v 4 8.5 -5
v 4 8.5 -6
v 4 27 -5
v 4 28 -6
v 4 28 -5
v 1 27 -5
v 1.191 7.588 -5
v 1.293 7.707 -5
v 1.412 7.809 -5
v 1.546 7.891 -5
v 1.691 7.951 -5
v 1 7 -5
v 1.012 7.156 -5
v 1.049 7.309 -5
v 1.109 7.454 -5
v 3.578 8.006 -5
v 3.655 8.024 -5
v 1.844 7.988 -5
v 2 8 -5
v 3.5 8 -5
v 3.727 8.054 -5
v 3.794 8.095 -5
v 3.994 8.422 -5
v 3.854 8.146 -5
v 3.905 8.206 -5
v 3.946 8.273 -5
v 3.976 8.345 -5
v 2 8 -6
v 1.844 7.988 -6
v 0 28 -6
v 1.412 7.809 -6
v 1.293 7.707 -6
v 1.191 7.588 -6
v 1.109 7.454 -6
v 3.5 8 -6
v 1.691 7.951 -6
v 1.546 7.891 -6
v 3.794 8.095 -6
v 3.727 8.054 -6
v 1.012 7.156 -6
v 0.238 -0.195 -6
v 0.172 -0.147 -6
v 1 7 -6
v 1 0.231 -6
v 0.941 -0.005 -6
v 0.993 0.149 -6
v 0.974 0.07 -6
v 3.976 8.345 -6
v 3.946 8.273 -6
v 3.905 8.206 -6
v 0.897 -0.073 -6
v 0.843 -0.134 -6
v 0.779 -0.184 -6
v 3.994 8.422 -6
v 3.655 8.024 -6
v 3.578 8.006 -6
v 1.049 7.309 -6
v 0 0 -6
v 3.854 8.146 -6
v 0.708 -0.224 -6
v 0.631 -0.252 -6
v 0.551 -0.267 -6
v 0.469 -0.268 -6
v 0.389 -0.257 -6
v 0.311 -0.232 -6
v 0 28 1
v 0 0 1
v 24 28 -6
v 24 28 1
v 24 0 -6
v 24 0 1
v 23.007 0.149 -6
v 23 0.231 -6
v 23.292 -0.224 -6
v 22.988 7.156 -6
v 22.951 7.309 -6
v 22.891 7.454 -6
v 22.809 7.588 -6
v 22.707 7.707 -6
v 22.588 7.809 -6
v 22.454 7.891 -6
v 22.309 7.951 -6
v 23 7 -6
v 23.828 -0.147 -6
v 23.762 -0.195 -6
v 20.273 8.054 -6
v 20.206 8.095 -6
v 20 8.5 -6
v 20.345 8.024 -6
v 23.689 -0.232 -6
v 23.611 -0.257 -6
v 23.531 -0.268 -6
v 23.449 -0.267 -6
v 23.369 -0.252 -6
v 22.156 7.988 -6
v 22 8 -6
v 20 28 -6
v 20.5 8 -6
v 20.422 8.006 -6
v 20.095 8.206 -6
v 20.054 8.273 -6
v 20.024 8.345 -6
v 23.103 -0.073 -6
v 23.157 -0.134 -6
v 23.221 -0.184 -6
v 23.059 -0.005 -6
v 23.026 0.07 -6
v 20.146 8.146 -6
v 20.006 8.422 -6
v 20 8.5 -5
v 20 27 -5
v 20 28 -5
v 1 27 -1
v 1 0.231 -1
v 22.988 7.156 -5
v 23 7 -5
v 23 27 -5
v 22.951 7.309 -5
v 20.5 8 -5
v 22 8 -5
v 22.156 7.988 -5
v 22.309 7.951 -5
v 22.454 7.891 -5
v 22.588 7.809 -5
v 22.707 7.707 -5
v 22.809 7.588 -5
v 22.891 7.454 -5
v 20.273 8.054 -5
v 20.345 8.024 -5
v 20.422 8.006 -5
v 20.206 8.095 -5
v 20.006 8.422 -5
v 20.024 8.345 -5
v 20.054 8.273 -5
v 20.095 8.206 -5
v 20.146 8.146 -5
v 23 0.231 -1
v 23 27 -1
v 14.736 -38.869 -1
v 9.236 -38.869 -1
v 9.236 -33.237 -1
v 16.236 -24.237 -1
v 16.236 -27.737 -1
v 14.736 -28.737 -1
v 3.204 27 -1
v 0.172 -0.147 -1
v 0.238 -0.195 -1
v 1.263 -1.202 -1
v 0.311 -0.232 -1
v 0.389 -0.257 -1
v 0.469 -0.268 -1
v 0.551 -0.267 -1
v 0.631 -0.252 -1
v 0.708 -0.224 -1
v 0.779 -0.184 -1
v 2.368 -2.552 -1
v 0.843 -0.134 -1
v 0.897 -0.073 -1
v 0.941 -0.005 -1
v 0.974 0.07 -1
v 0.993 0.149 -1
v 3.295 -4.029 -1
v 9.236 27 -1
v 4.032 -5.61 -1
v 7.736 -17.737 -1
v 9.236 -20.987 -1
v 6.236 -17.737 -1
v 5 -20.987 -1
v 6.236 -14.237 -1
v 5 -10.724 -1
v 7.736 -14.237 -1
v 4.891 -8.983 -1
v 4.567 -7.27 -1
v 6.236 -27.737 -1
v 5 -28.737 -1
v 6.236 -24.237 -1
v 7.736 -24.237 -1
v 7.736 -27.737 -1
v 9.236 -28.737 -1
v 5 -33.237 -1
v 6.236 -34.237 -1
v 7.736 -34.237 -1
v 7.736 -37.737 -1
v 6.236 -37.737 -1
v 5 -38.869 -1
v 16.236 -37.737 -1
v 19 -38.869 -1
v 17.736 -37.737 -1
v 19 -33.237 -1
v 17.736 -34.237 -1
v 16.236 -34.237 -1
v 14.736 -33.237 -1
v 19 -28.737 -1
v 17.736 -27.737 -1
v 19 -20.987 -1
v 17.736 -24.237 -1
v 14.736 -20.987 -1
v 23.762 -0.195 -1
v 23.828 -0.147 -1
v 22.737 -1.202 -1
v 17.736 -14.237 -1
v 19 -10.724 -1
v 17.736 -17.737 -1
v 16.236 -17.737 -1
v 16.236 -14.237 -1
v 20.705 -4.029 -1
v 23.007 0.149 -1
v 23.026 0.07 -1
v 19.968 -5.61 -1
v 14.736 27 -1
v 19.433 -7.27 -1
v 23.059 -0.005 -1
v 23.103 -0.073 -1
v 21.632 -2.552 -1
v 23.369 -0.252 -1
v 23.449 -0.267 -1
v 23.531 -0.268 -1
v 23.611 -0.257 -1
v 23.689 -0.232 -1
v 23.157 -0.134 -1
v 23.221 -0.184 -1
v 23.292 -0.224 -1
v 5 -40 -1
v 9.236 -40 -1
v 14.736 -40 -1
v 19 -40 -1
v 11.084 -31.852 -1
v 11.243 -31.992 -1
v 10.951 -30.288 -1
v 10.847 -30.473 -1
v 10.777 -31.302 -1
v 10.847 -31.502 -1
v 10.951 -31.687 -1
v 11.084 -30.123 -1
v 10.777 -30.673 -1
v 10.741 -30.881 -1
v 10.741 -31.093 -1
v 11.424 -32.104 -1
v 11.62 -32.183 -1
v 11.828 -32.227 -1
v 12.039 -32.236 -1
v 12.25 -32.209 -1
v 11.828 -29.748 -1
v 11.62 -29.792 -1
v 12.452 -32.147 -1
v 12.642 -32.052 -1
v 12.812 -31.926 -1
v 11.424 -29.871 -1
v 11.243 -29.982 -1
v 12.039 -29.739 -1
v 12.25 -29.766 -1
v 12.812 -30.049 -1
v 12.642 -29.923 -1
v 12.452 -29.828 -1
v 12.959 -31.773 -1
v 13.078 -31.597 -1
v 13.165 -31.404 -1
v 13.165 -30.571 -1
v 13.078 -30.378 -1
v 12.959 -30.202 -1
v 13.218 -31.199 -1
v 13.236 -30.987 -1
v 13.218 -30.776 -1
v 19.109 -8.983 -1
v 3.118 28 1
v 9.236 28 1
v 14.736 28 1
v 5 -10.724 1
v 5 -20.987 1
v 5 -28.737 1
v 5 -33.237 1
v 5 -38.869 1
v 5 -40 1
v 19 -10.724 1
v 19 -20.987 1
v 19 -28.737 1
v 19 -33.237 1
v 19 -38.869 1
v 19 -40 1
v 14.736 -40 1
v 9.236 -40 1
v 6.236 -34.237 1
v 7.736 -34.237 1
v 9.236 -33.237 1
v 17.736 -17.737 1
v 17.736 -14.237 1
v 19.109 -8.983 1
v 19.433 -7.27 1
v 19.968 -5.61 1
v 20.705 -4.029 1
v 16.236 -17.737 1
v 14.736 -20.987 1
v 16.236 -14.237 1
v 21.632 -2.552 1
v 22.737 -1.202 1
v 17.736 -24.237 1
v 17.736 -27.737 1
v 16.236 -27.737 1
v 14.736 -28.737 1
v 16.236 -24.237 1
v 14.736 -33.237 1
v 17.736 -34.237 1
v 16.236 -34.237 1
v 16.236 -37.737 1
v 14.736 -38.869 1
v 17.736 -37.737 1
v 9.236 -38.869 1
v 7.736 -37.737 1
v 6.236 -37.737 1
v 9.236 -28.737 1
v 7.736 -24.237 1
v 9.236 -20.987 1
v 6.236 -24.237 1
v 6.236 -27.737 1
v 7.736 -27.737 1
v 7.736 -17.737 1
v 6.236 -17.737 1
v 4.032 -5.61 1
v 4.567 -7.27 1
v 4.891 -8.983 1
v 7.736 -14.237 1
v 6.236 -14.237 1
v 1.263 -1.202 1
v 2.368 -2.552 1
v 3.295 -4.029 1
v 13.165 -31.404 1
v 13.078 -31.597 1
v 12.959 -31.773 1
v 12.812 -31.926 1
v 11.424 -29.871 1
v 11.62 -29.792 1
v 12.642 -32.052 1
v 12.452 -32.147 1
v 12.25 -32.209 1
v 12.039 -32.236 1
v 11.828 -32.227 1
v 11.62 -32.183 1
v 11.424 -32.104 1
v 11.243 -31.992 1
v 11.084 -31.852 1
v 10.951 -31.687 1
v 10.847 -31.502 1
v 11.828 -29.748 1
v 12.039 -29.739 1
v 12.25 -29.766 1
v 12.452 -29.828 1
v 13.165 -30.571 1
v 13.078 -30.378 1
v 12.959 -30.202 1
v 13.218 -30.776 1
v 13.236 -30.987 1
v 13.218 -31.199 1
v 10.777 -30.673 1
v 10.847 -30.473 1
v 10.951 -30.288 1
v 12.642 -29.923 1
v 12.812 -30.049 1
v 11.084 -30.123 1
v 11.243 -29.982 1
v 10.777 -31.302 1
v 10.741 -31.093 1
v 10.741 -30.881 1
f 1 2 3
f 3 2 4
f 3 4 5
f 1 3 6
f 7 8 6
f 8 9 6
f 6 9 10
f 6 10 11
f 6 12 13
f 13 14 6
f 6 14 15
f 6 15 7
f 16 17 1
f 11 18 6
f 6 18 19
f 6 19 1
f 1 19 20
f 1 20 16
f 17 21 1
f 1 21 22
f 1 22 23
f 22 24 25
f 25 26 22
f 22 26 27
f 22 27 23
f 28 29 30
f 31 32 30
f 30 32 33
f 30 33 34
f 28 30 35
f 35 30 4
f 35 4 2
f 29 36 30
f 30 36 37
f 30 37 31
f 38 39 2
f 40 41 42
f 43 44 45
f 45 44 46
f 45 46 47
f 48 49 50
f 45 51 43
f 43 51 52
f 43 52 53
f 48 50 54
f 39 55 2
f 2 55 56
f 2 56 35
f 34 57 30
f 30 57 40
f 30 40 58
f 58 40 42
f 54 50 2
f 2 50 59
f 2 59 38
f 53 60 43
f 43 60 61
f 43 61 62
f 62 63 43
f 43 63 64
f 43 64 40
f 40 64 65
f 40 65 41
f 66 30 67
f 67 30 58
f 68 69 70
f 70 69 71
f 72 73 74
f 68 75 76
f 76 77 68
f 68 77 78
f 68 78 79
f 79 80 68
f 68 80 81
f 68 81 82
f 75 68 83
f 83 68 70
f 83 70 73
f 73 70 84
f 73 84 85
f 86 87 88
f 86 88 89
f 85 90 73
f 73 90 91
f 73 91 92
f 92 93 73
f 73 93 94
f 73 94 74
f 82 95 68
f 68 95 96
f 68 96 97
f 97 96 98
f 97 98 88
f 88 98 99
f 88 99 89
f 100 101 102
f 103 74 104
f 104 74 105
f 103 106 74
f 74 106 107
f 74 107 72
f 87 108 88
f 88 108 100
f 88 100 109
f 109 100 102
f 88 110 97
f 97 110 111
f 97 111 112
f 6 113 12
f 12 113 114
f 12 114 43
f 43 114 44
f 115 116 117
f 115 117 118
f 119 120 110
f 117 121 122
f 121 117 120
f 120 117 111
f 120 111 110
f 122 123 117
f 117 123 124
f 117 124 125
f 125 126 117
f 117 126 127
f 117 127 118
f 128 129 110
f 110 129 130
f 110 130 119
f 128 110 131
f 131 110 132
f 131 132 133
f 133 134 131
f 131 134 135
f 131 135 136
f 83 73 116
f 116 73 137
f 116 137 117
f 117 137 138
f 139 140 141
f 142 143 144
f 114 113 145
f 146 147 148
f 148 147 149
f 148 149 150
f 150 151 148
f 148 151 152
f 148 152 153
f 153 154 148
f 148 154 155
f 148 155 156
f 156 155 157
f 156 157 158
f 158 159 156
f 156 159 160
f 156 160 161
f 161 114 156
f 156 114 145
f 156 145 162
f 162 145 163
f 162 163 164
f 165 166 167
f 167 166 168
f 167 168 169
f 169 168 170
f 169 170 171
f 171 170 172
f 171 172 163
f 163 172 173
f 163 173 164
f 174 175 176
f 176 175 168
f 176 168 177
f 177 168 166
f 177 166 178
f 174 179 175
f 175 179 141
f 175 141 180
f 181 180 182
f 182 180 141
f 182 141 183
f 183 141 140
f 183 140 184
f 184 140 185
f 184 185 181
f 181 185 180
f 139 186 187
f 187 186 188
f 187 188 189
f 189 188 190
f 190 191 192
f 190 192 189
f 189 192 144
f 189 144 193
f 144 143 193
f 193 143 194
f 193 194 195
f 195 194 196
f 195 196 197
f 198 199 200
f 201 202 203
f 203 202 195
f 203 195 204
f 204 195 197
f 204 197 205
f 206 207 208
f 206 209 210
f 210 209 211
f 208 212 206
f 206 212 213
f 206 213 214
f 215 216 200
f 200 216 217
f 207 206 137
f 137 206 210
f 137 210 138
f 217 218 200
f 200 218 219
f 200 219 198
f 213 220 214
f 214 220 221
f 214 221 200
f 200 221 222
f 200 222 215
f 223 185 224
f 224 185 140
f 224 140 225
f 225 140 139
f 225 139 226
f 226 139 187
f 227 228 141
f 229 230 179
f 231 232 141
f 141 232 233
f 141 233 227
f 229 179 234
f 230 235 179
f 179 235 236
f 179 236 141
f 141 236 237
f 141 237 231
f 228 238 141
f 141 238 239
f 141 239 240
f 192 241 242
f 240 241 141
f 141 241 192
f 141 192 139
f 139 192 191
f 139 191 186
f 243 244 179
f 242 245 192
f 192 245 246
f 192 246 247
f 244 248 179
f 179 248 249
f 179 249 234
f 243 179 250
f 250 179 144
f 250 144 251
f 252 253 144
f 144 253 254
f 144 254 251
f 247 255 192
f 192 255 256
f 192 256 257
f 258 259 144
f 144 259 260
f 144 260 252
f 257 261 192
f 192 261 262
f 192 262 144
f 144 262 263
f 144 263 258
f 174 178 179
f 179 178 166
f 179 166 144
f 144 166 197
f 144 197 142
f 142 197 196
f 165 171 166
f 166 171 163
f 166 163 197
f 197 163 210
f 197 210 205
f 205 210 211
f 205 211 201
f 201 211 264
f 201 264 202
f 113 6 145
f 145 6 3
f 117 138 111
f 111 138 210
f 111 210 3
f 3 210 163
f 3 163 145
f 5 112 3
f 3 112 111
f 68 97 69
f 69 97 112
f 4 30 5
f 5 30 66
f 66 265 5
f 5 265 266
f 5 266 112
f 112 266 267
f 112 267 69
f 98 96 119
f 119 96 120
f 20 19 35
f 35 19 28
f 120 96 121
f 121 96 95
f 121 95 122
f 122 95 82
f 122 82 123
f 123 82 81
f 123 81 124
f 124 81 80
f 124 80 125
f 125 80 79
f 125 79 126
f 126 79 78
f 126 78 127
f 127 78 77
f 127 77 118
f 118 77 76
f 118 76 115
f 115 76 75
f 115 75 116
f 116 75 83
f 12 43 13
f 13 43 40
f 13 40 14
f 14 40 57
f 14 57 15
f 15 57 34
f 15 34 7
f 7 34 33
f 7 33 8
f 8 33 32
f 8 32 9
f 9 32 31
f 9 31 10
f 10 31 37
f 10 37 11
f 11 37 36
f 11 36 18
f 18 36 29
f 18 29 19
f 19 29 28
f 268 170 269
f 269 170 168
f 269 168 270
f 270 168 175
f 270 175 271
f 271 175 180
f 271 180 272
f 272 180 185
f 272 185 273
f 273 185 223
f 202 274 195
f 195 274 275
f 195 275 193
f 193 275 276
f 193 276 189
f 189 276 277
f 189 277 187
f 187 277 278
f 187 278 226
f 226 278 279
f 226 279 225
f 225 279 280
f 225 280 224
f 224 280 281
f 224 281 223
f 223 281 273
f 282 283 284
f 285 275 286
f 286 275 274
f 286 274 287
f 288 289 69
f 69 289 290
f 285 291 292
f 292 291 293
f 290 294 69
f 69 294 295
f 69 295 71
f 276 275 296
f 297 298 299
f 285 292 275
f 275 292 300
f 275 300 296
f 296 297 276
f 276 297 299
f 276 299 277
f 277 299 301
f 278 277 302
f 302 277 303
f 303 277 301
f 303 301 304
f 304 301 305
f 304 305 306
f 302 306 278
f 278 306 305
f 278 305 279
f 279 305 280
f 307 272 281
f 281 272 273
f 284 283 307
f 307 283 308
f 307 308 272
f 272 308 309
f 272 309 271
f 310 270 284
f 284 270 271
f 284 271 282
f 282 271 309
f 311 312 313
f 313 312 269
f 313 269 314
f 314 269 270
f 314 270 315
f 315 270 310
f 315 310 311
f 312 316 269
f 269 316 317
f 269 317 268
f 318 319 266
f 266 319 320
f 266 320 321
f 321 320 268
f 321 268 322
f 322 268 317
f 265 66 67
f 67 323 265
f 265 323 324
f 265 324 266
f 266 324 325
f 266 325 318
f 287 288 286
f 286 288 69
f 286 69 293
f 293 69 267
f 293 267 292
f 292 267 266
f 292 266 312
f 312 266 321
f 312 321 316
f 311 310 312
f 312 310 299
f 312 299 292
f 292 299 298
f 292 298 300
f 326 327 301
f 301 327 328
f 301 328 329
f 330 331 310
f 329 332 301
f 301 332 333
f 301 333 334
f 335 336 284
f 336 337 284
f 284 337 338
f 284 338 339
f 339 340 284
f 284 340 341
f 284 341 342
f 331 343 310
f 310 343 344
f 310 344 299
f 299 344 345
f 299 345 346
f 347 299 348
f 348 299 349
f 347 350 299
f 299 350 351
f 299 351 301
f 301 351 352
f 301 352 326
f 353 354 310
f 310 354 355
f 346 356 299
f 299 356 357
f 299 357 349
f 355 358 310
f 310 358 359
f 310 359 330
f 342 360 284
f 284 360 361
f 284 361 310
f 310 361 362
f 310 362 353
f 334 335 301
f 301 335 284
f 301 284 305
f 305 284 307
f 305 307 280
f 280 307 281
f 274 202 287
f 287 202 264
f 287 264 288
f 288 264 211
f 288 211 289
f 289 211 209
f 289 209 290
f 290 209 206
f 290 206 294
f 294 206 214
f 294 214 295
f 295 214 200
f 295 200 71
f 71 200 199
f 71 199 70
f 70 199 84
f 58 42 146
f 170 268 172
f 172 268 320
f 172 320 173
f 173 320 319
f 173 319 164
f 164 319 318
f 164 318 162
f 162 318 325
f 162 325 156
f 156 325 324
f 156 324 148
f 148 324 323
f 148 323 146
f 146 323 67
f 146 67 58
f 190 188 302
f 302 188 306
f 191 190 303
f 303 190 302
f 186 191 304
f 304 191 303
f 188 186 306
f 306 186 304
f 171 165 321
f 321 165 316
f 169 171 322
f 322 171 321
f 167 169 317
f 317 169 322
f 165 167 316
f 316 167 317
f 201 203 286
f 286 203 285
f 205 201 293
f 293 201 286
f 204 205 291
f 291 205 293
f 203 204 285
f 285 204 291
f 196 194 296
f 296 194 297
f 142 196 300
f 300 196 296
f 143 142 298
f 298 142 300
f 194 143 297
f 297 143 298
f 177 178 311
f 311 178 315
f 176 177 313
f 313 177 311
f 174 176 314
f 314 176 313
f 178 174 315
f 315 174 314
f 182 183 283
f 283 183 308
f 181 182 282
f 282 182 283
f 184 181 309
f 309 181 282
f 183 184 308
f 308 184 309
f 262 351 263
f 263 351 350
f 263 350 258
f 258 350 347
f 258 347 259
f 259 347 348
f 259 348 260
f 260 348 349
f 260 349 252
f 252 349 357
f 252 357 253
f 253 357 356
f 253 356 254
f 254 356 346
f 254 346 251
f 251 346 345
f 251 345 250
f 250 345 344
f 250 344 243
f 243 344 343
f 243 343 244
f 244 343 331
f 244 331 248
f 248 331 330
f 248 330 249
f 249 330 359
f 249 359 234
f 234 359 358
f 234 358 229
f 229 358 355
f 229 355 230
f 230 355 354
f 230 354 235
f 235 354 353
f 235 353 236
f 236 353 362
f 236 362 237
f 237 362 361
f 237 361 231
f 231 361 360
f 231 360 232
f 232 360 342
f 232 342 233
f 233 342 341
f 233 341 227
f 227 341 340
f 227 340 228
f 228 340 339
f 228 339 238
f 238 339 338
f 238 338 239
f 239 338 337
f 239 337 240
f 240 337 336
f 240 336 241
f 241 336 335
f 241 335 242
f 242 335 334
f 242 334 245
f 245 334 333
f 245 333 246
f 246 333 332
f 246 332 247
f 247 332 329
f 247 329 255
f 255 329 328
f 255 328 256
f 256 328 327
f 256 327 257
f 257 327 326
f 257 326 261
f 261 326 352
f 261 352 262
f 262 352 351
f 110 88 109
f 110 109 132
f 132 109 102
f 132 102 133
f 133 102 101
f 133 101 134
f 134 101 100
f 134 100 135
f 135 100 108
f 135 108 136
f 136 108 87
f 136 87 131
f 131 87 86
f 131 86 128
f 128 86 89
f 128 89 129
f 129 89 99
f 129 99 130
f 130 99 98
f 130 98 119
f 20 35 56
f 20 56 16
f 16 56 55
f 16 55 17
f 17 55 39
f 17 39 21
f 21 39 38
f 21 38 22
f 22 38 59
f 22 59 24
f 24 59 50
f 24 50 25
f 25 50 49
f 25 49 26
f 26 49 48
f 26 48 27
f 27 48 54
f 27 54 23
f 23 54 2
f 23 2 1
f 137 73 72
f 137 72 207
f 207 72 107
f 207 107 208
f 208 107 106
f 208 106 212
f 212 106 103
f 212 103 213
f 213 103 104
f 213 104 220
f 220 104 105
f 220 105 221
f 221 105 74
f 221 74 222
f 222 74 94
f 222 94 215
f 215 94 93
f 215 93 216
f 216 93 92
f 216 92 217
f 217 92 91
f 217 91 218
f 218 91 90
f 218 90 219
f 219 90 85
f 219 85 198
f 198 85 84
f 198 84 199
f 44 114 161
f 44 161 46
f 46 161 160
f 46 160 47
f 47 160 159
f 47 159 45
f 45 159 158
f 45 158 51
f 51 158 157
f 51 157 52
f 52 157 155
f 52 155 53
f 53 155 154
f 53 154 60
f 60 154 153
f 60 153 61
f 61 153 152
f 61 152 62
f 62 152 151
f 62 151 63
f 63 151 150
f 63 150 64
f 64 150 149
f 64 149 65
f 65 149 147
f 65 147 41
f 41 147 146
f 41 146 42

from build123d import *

# Parameters (mm, degrees)
SKETCH1_W                   = 24
SKETCH1_H                   = 6
BOSS_EXTRUDE1_DEPTH         = 27
CUT_EXTRUDE1_DEPTH          = 27
BOSS_EXTRUDE2_DEPTH         = 1
SKETCH4_W                   = 3
SKETCH4_H                   = 1
CUT_EXTRUDE2_DEPTH          = 8
FILLET1_R                   = 1
SKETCH5_W                   = 14
SKETCH5_H                   = 40
BOSS_EXTRUDE3_DEPTH         = 1
BOSS_EXTRUDE4_DEPTH         = 1
FILLET2_R                   = 14
SKETCH6_W                   = 1.5
SKETCH6_H                   = 3.5
CUT_EXTRUDE3_DEPTH          = 3
TAP_DRILL_FOR_M3X0_5_TAP1_D = 2.5
FILLET3_R                   = 0.5


with BuildPart() as part:
    # Sketch1 → Boss-Extrude1 (new body)
    with BuildSketch(Plane(origin=(0, 0, 0), x_dir=(1, 0, 0), z_dir=(0, 1, 0))):
        with Locations((12, 3)):
            Rectangle(SKETCH1_W, SKETCH1_H)
    extrude(amount=BOSS_EXTRUDE1_DEPTH)

    # Sketch2 → Cut-Extrude1 (cut)
    with BuildSketch(Plane(origin=(0, 27, 0), x_dir=(1, 0, 0), z_dir=(0, 1, 0))):
        Polygon((1, 1), (23, 1), (23, 5), (20, 5), (20, 7.622720443), (4, 7.622720443), (4, 5), (1, 5), align=None)
    extrude(amount=-CUT_EXTRUDE1_DEPTH, mode=Mode.SUBTRACT)

    # Sketch3 → Boss-Extrude2 (add)
    with BuildSketch(Plane(origin=(0, 27, 0), x_dir=(1, 0, 0), z_dir=(0, 1, 0))):
        Polygon((24, 0), (24, 5), (24, 6), (20, 6), (20, 5), (4, 5), (4, 6), (0, 6), (0, 5), (0, 0), align=None)
    extrude(amount=BOSS_EXTRUDE2_DEPTH)

    # Sketch4 → Cut-Extrude2 (cut)
    with BuildSketch(Plane.XZ):
        with Locations((2.5, -5.5)):
            Rectangle(SKETCH4_W, SKETCH4_H)
        with Locations((21.5, -5.5)):
            Rectangle(SKETCH4_W, SKETCH4_H)
    extrude(amount=-CUT_EXTRUDE2_DEPTH, mode=Mode.SUBTRACT)

    # Fillet1
    fillet1_edges = [part.edges().sort_by_distance(p)[0] for p in [
        (1, 8, -5.5),
        (23, 8, -5.5),
    ]]
    fillet(fillet1_edges, radius=FILLET1_R)

    # Sketch5 → Boss-Extrude3 (add)
    with BuildSketch(Plane.XY):
        with Locations((12, -20)):
            Rectangle(SKETCH5_W, SKETCH5_H)
    extrude(amount=-BOSS_EXTRUDE3_DEPTH)

    # Sketch7 → Boss-Extrude4 (add)
    with BuildSketch(Plane.XY):
        Polygon((0, 28), (0, 0), (5, 0), (5, -40), (19, -40), (19, 0), (24, 0), (24, 28), align=None)
    extrude(amount=BOSS_EXTRUDE4_DEPTH)

    # Fillet2
    # the kernel refuses this fillet: 14 mm, written as the material it adds along each edge
    with BuildSketch(Plane(origin=(19, 0, -27.809513237), x_dir=(0, -1, 0), z_dir=(0, 0, 1))) as fillet2_piece_1_section:
        with BuildLine():
            CenterArc((10.723805295, 14), FILLET2_R, 220.005200885, 49.994799115)
            Line((0, 5), (-0.214476106, 4.82))
            ThreePointArc((-0.214476106, 4.82), (-0.28, 2.5), (-0.28, 0))
            Line((-0.28, 0), (0, -0.28))
            Line((0, -0.28), (10.723805295, -0.28))
            Line((10.723805295, -0.28), (10.723805295, 0))
        make_face()
    fillet2_piece_1 = extrude(amount=28.809513237, mode=Mode.PRIVATE)
    fillet2_piece_1 = split(fillet2_piece_1, bisect_by=Plane(origin=(23.365169803, -0.171945875, -1), z_dir=(0, 0, -1)), keep=Keep.TOP, mode=Mode.PRIVATE)
    fillet2_piece_1 = split(fillet2_piece_1, bisect_by=Plane(origin=(23.365169803, -0.171945875, -6), z_dir=(0, 0, 1)), keep=Keep.TOP, mode=Mode.PRIVATE)
    fillet2_piece_1 = split(fillet2_piece_1, bisect_by=Plane(origin=(23, -0.171945875, -3.5), z_dir=(1, 0, 0)), keep=Keep.TOP, mode=Mode.PRIVATE)
    add(fillet2_piece_1)
    with BuildSketch(Plane(origin=(19, 0, -1), x_dir=(0, -1, 0), z_dir=(0, 0, 1))) as fillet2_piece_2_section:
        with BuildLine():
            CenterArc((10.723805295, 14), FILLET2_R, 220.005200885, 49.994799115)
            Line((0, 5), (-0.214476106, 4.82))
            ThreePointArc((-0.214476106, 4.82), (-0.28, 2.5), (-0.28, 0))
            Line((-0.28, 0), (0, -0.28))
            Line((0, -0.28), (10.723805295, -0.28))
            Line((10.723805295, -0.28), (10.723805295, 0))
        make_face()
    fillet2_piece_2 = extrude(amount=2, mode=Mode.PRIVATE)
    fillet2_piece_2 = split(fillet2_piece_2, bisect_by=Plane(origin=(23, -2.887653154, 0), z_dir=(-1, 0, 0)), keep=Keep.TOP, mode=Mode.PRIVATE)
    add(fillet2_piece_2)
    with BuildSketch(Plane(origin=(19, 0, -1), x_dir=(0, -1, 0), z_dir=(0, 0, 1))) as fillet2_piece_3_section:
        with BuildLine():
            CenterArc((10.723805295, 14), FILLET2_R, 220.005200885, 49.994799115)
            Line((0, 5), (-0.214476106, 4.82))
            ThreePointArc((-0.214476106, 4.82), (-0.28, 2.5), (-0.28, 0))
            Line((-0.28, 0), (0, -0.28))
            Line((0, -0.28), (10.723805295, -0.28))
            Line((10.723805295, -0.28), (10.723805295, 0))
        make_face()
    fillet2_piece_3 = extrude(amount=2, mode=Mode.PRIVATE)
    fillet2_piece_3 = split(fillet2_piece_3, bisect_by=Plane(origin=(23, -0.171945875, 0), z_dir=(1, 0, 0)), keep=Keep.TOP, mode=Mode.PRIVATE)
    add(fillet2_piece_3)
    with BuildSketch(Plane(origin=(5, 0, -27.809513237), x_dir=(-1, 0, 0), z_dir=(0, 0, 1))) as fillet2_piece_4_section:
        with BuildLine():
            CenterArc((14, 10.723805295), FILLET2_R, 180, 49.994799115)
            Line((0, 10.723805295), (-0.28, 10.723805295))
            Line((-0.28, 10.723805295), (-0.28, 0))
            Line((-0.28, 0), (0, -0.28))
            ThreePointArc((0, -0.28), (2.5, -0.28), (4.82, -0.214476106))
            Line((4.82, -0.214476106), (5, 0))
        make_face()
    fillet2_piece_4 = extrude(amount=28.809513237, mode=Mode.PRIVATE)
    fillet2_piece_4 = split(fillet2_piece_4, bisect_by=Plane(origin=(1, -0.171945875, -3.5), z_dir=(-1, 0, 0)), keep=Keep.TOP, mode=Mode.PRIVATE)
    fillet2_piece_4 = split(fillet2_piece_4, bisect_by=Plane(origin=(0.634830197, -0.171945875, -6), z_dir=(0, 0, 1)), keep=Keep.TOP, mode=Mode.PRIVATE)
    fillet2_piece_4 = split(fillet2_piece_4, bisect_by=Plane(origin=(0.634830197, -0.171945875, -1), z_dir=(0, 0, -1)), keep=Keep.TOP, mode=Mode.PRIVATE)
    add(fillet2_piece_4)
    with BuildSketch(Plane(origin=(5, 0, -1), x_dir=(-1, 0, 0), z_dir=(0, 0, 1))) as fillet2_piece_5_section:
        with BuildLine():
            CenterArc((14, 10.723805295), FILLET2_R, 180, 49.994799115)
            Line((0, 10.723805295), (-0.28, 10.723805295))
            Line((-0.28, 10.723805295), (-0.28, 0))
            Line((-0.28, 0), (0, -0.28))
            ThreePointArc((0, -0.28), (2.5, -0.28), (4.82, -0.214476106))
            Line((4.82, -0.214476106), (5, 0))
        make_face()
    fillet2_piece_5 = extrude(amount=2, mode=Mode.PRIVATE)
    fillet2_piece_5 = split(fillet2_piece_5, bisect_by=Plane(origin=(1, -0.171945875, 0), z_dir=(-1, 0, 0)), keep=Keep.TOP, mode=Mode.PRIVATE)
    add(fillet2_piece_5)
    with BuildSketch(Plane(origin=(5, 0, -1), x_dir=(-1, 0, 0), z_dir=(0, 0, 1))) as fillet2_piece_6_section:
        with BuildLine():
            CenterArc((14, 10.723805295), FILLET2_R, 180, 49.994799115)
            Line((0, 10.723805295), (-0.28, 10.723805295))
            Line((-0.28, 10.723805295), (-0.28, 0))
            Line((-0.28, 0), (0, -0.28))
            ThreePointArc((0, -0.28), (2.5, -0.28), (4.82, -0.214476106))
            Line((4.82, -0.214476106), (5, 0))
        make_face()
    fillet2_piece_6 = extrude(amount=2, mode=Mode.PRIVATE)
    fillet2_piece_6 = split(fillet2_piece_6, bisect_by=Plane(origin=(1, -2.887653154, 0), z_dir=(1, 0, 0)), keep=Keep.TOP, mode=Mode.PRIVATE)
    add(fillet2_piece_6)

    # Sketch6 → Cut-Extrude3 (cut)
    with BuildSketch(Plane(origin=(0, 0, -1), x_dir=(-1, 0, 0), z_dir=(0, 0, -1))):
        with Locations((-6.986389138, -35.987474117)):
            Rectangle(SKETCH6_W, SKETCH6_H)
        with Locations((-16.986389138, -35.987474117)):
            Rectangle(SKETCH6_W, SKETCH6_H)
        with Locations((-6.986389138, -25.987474117)):
            Rectangle(SKETCH6_W, SKETCH6_H)
        with Locations((-16.986389138, -25.987474117)):
            Rectangle(SKETCH6_W, SKETCH6_H)
        with Locations((-16.986389138, -15.987474117)):
            Rectangle(SKETCH6_W, SKETCH6_H)
        with Locations((-6.986389138, -15.987474117)):
            Rectangle(SKETCH6_W, SKETCH6_H)
    extrude(amount=-CUT_EXTRUDE3_DEPTH, mode=Mode.SUBTRACT)

    # Tap Drill for M3x0.5 Tap1 (through all)
    with Locations(Plane.XY.offset(1)):
        with Locations((11.986389138, -30.987474117)):
            Hole(TAP_DRILL_FOR_M3X0_5_TAP1_D / 2)

    # Fillet3
    fillet3_edges = [part.edges().sort_by_distance(p)[0] for p in [
        (23, -0.925846324, -3.5),
        (1, -0.925846324, -3.5),
        (4, 8, -5.5),
        (20, 8, -5.5),
    ]]
    fillet(fillet3_edges, radius=FILLET3_R)


solid = part.part
